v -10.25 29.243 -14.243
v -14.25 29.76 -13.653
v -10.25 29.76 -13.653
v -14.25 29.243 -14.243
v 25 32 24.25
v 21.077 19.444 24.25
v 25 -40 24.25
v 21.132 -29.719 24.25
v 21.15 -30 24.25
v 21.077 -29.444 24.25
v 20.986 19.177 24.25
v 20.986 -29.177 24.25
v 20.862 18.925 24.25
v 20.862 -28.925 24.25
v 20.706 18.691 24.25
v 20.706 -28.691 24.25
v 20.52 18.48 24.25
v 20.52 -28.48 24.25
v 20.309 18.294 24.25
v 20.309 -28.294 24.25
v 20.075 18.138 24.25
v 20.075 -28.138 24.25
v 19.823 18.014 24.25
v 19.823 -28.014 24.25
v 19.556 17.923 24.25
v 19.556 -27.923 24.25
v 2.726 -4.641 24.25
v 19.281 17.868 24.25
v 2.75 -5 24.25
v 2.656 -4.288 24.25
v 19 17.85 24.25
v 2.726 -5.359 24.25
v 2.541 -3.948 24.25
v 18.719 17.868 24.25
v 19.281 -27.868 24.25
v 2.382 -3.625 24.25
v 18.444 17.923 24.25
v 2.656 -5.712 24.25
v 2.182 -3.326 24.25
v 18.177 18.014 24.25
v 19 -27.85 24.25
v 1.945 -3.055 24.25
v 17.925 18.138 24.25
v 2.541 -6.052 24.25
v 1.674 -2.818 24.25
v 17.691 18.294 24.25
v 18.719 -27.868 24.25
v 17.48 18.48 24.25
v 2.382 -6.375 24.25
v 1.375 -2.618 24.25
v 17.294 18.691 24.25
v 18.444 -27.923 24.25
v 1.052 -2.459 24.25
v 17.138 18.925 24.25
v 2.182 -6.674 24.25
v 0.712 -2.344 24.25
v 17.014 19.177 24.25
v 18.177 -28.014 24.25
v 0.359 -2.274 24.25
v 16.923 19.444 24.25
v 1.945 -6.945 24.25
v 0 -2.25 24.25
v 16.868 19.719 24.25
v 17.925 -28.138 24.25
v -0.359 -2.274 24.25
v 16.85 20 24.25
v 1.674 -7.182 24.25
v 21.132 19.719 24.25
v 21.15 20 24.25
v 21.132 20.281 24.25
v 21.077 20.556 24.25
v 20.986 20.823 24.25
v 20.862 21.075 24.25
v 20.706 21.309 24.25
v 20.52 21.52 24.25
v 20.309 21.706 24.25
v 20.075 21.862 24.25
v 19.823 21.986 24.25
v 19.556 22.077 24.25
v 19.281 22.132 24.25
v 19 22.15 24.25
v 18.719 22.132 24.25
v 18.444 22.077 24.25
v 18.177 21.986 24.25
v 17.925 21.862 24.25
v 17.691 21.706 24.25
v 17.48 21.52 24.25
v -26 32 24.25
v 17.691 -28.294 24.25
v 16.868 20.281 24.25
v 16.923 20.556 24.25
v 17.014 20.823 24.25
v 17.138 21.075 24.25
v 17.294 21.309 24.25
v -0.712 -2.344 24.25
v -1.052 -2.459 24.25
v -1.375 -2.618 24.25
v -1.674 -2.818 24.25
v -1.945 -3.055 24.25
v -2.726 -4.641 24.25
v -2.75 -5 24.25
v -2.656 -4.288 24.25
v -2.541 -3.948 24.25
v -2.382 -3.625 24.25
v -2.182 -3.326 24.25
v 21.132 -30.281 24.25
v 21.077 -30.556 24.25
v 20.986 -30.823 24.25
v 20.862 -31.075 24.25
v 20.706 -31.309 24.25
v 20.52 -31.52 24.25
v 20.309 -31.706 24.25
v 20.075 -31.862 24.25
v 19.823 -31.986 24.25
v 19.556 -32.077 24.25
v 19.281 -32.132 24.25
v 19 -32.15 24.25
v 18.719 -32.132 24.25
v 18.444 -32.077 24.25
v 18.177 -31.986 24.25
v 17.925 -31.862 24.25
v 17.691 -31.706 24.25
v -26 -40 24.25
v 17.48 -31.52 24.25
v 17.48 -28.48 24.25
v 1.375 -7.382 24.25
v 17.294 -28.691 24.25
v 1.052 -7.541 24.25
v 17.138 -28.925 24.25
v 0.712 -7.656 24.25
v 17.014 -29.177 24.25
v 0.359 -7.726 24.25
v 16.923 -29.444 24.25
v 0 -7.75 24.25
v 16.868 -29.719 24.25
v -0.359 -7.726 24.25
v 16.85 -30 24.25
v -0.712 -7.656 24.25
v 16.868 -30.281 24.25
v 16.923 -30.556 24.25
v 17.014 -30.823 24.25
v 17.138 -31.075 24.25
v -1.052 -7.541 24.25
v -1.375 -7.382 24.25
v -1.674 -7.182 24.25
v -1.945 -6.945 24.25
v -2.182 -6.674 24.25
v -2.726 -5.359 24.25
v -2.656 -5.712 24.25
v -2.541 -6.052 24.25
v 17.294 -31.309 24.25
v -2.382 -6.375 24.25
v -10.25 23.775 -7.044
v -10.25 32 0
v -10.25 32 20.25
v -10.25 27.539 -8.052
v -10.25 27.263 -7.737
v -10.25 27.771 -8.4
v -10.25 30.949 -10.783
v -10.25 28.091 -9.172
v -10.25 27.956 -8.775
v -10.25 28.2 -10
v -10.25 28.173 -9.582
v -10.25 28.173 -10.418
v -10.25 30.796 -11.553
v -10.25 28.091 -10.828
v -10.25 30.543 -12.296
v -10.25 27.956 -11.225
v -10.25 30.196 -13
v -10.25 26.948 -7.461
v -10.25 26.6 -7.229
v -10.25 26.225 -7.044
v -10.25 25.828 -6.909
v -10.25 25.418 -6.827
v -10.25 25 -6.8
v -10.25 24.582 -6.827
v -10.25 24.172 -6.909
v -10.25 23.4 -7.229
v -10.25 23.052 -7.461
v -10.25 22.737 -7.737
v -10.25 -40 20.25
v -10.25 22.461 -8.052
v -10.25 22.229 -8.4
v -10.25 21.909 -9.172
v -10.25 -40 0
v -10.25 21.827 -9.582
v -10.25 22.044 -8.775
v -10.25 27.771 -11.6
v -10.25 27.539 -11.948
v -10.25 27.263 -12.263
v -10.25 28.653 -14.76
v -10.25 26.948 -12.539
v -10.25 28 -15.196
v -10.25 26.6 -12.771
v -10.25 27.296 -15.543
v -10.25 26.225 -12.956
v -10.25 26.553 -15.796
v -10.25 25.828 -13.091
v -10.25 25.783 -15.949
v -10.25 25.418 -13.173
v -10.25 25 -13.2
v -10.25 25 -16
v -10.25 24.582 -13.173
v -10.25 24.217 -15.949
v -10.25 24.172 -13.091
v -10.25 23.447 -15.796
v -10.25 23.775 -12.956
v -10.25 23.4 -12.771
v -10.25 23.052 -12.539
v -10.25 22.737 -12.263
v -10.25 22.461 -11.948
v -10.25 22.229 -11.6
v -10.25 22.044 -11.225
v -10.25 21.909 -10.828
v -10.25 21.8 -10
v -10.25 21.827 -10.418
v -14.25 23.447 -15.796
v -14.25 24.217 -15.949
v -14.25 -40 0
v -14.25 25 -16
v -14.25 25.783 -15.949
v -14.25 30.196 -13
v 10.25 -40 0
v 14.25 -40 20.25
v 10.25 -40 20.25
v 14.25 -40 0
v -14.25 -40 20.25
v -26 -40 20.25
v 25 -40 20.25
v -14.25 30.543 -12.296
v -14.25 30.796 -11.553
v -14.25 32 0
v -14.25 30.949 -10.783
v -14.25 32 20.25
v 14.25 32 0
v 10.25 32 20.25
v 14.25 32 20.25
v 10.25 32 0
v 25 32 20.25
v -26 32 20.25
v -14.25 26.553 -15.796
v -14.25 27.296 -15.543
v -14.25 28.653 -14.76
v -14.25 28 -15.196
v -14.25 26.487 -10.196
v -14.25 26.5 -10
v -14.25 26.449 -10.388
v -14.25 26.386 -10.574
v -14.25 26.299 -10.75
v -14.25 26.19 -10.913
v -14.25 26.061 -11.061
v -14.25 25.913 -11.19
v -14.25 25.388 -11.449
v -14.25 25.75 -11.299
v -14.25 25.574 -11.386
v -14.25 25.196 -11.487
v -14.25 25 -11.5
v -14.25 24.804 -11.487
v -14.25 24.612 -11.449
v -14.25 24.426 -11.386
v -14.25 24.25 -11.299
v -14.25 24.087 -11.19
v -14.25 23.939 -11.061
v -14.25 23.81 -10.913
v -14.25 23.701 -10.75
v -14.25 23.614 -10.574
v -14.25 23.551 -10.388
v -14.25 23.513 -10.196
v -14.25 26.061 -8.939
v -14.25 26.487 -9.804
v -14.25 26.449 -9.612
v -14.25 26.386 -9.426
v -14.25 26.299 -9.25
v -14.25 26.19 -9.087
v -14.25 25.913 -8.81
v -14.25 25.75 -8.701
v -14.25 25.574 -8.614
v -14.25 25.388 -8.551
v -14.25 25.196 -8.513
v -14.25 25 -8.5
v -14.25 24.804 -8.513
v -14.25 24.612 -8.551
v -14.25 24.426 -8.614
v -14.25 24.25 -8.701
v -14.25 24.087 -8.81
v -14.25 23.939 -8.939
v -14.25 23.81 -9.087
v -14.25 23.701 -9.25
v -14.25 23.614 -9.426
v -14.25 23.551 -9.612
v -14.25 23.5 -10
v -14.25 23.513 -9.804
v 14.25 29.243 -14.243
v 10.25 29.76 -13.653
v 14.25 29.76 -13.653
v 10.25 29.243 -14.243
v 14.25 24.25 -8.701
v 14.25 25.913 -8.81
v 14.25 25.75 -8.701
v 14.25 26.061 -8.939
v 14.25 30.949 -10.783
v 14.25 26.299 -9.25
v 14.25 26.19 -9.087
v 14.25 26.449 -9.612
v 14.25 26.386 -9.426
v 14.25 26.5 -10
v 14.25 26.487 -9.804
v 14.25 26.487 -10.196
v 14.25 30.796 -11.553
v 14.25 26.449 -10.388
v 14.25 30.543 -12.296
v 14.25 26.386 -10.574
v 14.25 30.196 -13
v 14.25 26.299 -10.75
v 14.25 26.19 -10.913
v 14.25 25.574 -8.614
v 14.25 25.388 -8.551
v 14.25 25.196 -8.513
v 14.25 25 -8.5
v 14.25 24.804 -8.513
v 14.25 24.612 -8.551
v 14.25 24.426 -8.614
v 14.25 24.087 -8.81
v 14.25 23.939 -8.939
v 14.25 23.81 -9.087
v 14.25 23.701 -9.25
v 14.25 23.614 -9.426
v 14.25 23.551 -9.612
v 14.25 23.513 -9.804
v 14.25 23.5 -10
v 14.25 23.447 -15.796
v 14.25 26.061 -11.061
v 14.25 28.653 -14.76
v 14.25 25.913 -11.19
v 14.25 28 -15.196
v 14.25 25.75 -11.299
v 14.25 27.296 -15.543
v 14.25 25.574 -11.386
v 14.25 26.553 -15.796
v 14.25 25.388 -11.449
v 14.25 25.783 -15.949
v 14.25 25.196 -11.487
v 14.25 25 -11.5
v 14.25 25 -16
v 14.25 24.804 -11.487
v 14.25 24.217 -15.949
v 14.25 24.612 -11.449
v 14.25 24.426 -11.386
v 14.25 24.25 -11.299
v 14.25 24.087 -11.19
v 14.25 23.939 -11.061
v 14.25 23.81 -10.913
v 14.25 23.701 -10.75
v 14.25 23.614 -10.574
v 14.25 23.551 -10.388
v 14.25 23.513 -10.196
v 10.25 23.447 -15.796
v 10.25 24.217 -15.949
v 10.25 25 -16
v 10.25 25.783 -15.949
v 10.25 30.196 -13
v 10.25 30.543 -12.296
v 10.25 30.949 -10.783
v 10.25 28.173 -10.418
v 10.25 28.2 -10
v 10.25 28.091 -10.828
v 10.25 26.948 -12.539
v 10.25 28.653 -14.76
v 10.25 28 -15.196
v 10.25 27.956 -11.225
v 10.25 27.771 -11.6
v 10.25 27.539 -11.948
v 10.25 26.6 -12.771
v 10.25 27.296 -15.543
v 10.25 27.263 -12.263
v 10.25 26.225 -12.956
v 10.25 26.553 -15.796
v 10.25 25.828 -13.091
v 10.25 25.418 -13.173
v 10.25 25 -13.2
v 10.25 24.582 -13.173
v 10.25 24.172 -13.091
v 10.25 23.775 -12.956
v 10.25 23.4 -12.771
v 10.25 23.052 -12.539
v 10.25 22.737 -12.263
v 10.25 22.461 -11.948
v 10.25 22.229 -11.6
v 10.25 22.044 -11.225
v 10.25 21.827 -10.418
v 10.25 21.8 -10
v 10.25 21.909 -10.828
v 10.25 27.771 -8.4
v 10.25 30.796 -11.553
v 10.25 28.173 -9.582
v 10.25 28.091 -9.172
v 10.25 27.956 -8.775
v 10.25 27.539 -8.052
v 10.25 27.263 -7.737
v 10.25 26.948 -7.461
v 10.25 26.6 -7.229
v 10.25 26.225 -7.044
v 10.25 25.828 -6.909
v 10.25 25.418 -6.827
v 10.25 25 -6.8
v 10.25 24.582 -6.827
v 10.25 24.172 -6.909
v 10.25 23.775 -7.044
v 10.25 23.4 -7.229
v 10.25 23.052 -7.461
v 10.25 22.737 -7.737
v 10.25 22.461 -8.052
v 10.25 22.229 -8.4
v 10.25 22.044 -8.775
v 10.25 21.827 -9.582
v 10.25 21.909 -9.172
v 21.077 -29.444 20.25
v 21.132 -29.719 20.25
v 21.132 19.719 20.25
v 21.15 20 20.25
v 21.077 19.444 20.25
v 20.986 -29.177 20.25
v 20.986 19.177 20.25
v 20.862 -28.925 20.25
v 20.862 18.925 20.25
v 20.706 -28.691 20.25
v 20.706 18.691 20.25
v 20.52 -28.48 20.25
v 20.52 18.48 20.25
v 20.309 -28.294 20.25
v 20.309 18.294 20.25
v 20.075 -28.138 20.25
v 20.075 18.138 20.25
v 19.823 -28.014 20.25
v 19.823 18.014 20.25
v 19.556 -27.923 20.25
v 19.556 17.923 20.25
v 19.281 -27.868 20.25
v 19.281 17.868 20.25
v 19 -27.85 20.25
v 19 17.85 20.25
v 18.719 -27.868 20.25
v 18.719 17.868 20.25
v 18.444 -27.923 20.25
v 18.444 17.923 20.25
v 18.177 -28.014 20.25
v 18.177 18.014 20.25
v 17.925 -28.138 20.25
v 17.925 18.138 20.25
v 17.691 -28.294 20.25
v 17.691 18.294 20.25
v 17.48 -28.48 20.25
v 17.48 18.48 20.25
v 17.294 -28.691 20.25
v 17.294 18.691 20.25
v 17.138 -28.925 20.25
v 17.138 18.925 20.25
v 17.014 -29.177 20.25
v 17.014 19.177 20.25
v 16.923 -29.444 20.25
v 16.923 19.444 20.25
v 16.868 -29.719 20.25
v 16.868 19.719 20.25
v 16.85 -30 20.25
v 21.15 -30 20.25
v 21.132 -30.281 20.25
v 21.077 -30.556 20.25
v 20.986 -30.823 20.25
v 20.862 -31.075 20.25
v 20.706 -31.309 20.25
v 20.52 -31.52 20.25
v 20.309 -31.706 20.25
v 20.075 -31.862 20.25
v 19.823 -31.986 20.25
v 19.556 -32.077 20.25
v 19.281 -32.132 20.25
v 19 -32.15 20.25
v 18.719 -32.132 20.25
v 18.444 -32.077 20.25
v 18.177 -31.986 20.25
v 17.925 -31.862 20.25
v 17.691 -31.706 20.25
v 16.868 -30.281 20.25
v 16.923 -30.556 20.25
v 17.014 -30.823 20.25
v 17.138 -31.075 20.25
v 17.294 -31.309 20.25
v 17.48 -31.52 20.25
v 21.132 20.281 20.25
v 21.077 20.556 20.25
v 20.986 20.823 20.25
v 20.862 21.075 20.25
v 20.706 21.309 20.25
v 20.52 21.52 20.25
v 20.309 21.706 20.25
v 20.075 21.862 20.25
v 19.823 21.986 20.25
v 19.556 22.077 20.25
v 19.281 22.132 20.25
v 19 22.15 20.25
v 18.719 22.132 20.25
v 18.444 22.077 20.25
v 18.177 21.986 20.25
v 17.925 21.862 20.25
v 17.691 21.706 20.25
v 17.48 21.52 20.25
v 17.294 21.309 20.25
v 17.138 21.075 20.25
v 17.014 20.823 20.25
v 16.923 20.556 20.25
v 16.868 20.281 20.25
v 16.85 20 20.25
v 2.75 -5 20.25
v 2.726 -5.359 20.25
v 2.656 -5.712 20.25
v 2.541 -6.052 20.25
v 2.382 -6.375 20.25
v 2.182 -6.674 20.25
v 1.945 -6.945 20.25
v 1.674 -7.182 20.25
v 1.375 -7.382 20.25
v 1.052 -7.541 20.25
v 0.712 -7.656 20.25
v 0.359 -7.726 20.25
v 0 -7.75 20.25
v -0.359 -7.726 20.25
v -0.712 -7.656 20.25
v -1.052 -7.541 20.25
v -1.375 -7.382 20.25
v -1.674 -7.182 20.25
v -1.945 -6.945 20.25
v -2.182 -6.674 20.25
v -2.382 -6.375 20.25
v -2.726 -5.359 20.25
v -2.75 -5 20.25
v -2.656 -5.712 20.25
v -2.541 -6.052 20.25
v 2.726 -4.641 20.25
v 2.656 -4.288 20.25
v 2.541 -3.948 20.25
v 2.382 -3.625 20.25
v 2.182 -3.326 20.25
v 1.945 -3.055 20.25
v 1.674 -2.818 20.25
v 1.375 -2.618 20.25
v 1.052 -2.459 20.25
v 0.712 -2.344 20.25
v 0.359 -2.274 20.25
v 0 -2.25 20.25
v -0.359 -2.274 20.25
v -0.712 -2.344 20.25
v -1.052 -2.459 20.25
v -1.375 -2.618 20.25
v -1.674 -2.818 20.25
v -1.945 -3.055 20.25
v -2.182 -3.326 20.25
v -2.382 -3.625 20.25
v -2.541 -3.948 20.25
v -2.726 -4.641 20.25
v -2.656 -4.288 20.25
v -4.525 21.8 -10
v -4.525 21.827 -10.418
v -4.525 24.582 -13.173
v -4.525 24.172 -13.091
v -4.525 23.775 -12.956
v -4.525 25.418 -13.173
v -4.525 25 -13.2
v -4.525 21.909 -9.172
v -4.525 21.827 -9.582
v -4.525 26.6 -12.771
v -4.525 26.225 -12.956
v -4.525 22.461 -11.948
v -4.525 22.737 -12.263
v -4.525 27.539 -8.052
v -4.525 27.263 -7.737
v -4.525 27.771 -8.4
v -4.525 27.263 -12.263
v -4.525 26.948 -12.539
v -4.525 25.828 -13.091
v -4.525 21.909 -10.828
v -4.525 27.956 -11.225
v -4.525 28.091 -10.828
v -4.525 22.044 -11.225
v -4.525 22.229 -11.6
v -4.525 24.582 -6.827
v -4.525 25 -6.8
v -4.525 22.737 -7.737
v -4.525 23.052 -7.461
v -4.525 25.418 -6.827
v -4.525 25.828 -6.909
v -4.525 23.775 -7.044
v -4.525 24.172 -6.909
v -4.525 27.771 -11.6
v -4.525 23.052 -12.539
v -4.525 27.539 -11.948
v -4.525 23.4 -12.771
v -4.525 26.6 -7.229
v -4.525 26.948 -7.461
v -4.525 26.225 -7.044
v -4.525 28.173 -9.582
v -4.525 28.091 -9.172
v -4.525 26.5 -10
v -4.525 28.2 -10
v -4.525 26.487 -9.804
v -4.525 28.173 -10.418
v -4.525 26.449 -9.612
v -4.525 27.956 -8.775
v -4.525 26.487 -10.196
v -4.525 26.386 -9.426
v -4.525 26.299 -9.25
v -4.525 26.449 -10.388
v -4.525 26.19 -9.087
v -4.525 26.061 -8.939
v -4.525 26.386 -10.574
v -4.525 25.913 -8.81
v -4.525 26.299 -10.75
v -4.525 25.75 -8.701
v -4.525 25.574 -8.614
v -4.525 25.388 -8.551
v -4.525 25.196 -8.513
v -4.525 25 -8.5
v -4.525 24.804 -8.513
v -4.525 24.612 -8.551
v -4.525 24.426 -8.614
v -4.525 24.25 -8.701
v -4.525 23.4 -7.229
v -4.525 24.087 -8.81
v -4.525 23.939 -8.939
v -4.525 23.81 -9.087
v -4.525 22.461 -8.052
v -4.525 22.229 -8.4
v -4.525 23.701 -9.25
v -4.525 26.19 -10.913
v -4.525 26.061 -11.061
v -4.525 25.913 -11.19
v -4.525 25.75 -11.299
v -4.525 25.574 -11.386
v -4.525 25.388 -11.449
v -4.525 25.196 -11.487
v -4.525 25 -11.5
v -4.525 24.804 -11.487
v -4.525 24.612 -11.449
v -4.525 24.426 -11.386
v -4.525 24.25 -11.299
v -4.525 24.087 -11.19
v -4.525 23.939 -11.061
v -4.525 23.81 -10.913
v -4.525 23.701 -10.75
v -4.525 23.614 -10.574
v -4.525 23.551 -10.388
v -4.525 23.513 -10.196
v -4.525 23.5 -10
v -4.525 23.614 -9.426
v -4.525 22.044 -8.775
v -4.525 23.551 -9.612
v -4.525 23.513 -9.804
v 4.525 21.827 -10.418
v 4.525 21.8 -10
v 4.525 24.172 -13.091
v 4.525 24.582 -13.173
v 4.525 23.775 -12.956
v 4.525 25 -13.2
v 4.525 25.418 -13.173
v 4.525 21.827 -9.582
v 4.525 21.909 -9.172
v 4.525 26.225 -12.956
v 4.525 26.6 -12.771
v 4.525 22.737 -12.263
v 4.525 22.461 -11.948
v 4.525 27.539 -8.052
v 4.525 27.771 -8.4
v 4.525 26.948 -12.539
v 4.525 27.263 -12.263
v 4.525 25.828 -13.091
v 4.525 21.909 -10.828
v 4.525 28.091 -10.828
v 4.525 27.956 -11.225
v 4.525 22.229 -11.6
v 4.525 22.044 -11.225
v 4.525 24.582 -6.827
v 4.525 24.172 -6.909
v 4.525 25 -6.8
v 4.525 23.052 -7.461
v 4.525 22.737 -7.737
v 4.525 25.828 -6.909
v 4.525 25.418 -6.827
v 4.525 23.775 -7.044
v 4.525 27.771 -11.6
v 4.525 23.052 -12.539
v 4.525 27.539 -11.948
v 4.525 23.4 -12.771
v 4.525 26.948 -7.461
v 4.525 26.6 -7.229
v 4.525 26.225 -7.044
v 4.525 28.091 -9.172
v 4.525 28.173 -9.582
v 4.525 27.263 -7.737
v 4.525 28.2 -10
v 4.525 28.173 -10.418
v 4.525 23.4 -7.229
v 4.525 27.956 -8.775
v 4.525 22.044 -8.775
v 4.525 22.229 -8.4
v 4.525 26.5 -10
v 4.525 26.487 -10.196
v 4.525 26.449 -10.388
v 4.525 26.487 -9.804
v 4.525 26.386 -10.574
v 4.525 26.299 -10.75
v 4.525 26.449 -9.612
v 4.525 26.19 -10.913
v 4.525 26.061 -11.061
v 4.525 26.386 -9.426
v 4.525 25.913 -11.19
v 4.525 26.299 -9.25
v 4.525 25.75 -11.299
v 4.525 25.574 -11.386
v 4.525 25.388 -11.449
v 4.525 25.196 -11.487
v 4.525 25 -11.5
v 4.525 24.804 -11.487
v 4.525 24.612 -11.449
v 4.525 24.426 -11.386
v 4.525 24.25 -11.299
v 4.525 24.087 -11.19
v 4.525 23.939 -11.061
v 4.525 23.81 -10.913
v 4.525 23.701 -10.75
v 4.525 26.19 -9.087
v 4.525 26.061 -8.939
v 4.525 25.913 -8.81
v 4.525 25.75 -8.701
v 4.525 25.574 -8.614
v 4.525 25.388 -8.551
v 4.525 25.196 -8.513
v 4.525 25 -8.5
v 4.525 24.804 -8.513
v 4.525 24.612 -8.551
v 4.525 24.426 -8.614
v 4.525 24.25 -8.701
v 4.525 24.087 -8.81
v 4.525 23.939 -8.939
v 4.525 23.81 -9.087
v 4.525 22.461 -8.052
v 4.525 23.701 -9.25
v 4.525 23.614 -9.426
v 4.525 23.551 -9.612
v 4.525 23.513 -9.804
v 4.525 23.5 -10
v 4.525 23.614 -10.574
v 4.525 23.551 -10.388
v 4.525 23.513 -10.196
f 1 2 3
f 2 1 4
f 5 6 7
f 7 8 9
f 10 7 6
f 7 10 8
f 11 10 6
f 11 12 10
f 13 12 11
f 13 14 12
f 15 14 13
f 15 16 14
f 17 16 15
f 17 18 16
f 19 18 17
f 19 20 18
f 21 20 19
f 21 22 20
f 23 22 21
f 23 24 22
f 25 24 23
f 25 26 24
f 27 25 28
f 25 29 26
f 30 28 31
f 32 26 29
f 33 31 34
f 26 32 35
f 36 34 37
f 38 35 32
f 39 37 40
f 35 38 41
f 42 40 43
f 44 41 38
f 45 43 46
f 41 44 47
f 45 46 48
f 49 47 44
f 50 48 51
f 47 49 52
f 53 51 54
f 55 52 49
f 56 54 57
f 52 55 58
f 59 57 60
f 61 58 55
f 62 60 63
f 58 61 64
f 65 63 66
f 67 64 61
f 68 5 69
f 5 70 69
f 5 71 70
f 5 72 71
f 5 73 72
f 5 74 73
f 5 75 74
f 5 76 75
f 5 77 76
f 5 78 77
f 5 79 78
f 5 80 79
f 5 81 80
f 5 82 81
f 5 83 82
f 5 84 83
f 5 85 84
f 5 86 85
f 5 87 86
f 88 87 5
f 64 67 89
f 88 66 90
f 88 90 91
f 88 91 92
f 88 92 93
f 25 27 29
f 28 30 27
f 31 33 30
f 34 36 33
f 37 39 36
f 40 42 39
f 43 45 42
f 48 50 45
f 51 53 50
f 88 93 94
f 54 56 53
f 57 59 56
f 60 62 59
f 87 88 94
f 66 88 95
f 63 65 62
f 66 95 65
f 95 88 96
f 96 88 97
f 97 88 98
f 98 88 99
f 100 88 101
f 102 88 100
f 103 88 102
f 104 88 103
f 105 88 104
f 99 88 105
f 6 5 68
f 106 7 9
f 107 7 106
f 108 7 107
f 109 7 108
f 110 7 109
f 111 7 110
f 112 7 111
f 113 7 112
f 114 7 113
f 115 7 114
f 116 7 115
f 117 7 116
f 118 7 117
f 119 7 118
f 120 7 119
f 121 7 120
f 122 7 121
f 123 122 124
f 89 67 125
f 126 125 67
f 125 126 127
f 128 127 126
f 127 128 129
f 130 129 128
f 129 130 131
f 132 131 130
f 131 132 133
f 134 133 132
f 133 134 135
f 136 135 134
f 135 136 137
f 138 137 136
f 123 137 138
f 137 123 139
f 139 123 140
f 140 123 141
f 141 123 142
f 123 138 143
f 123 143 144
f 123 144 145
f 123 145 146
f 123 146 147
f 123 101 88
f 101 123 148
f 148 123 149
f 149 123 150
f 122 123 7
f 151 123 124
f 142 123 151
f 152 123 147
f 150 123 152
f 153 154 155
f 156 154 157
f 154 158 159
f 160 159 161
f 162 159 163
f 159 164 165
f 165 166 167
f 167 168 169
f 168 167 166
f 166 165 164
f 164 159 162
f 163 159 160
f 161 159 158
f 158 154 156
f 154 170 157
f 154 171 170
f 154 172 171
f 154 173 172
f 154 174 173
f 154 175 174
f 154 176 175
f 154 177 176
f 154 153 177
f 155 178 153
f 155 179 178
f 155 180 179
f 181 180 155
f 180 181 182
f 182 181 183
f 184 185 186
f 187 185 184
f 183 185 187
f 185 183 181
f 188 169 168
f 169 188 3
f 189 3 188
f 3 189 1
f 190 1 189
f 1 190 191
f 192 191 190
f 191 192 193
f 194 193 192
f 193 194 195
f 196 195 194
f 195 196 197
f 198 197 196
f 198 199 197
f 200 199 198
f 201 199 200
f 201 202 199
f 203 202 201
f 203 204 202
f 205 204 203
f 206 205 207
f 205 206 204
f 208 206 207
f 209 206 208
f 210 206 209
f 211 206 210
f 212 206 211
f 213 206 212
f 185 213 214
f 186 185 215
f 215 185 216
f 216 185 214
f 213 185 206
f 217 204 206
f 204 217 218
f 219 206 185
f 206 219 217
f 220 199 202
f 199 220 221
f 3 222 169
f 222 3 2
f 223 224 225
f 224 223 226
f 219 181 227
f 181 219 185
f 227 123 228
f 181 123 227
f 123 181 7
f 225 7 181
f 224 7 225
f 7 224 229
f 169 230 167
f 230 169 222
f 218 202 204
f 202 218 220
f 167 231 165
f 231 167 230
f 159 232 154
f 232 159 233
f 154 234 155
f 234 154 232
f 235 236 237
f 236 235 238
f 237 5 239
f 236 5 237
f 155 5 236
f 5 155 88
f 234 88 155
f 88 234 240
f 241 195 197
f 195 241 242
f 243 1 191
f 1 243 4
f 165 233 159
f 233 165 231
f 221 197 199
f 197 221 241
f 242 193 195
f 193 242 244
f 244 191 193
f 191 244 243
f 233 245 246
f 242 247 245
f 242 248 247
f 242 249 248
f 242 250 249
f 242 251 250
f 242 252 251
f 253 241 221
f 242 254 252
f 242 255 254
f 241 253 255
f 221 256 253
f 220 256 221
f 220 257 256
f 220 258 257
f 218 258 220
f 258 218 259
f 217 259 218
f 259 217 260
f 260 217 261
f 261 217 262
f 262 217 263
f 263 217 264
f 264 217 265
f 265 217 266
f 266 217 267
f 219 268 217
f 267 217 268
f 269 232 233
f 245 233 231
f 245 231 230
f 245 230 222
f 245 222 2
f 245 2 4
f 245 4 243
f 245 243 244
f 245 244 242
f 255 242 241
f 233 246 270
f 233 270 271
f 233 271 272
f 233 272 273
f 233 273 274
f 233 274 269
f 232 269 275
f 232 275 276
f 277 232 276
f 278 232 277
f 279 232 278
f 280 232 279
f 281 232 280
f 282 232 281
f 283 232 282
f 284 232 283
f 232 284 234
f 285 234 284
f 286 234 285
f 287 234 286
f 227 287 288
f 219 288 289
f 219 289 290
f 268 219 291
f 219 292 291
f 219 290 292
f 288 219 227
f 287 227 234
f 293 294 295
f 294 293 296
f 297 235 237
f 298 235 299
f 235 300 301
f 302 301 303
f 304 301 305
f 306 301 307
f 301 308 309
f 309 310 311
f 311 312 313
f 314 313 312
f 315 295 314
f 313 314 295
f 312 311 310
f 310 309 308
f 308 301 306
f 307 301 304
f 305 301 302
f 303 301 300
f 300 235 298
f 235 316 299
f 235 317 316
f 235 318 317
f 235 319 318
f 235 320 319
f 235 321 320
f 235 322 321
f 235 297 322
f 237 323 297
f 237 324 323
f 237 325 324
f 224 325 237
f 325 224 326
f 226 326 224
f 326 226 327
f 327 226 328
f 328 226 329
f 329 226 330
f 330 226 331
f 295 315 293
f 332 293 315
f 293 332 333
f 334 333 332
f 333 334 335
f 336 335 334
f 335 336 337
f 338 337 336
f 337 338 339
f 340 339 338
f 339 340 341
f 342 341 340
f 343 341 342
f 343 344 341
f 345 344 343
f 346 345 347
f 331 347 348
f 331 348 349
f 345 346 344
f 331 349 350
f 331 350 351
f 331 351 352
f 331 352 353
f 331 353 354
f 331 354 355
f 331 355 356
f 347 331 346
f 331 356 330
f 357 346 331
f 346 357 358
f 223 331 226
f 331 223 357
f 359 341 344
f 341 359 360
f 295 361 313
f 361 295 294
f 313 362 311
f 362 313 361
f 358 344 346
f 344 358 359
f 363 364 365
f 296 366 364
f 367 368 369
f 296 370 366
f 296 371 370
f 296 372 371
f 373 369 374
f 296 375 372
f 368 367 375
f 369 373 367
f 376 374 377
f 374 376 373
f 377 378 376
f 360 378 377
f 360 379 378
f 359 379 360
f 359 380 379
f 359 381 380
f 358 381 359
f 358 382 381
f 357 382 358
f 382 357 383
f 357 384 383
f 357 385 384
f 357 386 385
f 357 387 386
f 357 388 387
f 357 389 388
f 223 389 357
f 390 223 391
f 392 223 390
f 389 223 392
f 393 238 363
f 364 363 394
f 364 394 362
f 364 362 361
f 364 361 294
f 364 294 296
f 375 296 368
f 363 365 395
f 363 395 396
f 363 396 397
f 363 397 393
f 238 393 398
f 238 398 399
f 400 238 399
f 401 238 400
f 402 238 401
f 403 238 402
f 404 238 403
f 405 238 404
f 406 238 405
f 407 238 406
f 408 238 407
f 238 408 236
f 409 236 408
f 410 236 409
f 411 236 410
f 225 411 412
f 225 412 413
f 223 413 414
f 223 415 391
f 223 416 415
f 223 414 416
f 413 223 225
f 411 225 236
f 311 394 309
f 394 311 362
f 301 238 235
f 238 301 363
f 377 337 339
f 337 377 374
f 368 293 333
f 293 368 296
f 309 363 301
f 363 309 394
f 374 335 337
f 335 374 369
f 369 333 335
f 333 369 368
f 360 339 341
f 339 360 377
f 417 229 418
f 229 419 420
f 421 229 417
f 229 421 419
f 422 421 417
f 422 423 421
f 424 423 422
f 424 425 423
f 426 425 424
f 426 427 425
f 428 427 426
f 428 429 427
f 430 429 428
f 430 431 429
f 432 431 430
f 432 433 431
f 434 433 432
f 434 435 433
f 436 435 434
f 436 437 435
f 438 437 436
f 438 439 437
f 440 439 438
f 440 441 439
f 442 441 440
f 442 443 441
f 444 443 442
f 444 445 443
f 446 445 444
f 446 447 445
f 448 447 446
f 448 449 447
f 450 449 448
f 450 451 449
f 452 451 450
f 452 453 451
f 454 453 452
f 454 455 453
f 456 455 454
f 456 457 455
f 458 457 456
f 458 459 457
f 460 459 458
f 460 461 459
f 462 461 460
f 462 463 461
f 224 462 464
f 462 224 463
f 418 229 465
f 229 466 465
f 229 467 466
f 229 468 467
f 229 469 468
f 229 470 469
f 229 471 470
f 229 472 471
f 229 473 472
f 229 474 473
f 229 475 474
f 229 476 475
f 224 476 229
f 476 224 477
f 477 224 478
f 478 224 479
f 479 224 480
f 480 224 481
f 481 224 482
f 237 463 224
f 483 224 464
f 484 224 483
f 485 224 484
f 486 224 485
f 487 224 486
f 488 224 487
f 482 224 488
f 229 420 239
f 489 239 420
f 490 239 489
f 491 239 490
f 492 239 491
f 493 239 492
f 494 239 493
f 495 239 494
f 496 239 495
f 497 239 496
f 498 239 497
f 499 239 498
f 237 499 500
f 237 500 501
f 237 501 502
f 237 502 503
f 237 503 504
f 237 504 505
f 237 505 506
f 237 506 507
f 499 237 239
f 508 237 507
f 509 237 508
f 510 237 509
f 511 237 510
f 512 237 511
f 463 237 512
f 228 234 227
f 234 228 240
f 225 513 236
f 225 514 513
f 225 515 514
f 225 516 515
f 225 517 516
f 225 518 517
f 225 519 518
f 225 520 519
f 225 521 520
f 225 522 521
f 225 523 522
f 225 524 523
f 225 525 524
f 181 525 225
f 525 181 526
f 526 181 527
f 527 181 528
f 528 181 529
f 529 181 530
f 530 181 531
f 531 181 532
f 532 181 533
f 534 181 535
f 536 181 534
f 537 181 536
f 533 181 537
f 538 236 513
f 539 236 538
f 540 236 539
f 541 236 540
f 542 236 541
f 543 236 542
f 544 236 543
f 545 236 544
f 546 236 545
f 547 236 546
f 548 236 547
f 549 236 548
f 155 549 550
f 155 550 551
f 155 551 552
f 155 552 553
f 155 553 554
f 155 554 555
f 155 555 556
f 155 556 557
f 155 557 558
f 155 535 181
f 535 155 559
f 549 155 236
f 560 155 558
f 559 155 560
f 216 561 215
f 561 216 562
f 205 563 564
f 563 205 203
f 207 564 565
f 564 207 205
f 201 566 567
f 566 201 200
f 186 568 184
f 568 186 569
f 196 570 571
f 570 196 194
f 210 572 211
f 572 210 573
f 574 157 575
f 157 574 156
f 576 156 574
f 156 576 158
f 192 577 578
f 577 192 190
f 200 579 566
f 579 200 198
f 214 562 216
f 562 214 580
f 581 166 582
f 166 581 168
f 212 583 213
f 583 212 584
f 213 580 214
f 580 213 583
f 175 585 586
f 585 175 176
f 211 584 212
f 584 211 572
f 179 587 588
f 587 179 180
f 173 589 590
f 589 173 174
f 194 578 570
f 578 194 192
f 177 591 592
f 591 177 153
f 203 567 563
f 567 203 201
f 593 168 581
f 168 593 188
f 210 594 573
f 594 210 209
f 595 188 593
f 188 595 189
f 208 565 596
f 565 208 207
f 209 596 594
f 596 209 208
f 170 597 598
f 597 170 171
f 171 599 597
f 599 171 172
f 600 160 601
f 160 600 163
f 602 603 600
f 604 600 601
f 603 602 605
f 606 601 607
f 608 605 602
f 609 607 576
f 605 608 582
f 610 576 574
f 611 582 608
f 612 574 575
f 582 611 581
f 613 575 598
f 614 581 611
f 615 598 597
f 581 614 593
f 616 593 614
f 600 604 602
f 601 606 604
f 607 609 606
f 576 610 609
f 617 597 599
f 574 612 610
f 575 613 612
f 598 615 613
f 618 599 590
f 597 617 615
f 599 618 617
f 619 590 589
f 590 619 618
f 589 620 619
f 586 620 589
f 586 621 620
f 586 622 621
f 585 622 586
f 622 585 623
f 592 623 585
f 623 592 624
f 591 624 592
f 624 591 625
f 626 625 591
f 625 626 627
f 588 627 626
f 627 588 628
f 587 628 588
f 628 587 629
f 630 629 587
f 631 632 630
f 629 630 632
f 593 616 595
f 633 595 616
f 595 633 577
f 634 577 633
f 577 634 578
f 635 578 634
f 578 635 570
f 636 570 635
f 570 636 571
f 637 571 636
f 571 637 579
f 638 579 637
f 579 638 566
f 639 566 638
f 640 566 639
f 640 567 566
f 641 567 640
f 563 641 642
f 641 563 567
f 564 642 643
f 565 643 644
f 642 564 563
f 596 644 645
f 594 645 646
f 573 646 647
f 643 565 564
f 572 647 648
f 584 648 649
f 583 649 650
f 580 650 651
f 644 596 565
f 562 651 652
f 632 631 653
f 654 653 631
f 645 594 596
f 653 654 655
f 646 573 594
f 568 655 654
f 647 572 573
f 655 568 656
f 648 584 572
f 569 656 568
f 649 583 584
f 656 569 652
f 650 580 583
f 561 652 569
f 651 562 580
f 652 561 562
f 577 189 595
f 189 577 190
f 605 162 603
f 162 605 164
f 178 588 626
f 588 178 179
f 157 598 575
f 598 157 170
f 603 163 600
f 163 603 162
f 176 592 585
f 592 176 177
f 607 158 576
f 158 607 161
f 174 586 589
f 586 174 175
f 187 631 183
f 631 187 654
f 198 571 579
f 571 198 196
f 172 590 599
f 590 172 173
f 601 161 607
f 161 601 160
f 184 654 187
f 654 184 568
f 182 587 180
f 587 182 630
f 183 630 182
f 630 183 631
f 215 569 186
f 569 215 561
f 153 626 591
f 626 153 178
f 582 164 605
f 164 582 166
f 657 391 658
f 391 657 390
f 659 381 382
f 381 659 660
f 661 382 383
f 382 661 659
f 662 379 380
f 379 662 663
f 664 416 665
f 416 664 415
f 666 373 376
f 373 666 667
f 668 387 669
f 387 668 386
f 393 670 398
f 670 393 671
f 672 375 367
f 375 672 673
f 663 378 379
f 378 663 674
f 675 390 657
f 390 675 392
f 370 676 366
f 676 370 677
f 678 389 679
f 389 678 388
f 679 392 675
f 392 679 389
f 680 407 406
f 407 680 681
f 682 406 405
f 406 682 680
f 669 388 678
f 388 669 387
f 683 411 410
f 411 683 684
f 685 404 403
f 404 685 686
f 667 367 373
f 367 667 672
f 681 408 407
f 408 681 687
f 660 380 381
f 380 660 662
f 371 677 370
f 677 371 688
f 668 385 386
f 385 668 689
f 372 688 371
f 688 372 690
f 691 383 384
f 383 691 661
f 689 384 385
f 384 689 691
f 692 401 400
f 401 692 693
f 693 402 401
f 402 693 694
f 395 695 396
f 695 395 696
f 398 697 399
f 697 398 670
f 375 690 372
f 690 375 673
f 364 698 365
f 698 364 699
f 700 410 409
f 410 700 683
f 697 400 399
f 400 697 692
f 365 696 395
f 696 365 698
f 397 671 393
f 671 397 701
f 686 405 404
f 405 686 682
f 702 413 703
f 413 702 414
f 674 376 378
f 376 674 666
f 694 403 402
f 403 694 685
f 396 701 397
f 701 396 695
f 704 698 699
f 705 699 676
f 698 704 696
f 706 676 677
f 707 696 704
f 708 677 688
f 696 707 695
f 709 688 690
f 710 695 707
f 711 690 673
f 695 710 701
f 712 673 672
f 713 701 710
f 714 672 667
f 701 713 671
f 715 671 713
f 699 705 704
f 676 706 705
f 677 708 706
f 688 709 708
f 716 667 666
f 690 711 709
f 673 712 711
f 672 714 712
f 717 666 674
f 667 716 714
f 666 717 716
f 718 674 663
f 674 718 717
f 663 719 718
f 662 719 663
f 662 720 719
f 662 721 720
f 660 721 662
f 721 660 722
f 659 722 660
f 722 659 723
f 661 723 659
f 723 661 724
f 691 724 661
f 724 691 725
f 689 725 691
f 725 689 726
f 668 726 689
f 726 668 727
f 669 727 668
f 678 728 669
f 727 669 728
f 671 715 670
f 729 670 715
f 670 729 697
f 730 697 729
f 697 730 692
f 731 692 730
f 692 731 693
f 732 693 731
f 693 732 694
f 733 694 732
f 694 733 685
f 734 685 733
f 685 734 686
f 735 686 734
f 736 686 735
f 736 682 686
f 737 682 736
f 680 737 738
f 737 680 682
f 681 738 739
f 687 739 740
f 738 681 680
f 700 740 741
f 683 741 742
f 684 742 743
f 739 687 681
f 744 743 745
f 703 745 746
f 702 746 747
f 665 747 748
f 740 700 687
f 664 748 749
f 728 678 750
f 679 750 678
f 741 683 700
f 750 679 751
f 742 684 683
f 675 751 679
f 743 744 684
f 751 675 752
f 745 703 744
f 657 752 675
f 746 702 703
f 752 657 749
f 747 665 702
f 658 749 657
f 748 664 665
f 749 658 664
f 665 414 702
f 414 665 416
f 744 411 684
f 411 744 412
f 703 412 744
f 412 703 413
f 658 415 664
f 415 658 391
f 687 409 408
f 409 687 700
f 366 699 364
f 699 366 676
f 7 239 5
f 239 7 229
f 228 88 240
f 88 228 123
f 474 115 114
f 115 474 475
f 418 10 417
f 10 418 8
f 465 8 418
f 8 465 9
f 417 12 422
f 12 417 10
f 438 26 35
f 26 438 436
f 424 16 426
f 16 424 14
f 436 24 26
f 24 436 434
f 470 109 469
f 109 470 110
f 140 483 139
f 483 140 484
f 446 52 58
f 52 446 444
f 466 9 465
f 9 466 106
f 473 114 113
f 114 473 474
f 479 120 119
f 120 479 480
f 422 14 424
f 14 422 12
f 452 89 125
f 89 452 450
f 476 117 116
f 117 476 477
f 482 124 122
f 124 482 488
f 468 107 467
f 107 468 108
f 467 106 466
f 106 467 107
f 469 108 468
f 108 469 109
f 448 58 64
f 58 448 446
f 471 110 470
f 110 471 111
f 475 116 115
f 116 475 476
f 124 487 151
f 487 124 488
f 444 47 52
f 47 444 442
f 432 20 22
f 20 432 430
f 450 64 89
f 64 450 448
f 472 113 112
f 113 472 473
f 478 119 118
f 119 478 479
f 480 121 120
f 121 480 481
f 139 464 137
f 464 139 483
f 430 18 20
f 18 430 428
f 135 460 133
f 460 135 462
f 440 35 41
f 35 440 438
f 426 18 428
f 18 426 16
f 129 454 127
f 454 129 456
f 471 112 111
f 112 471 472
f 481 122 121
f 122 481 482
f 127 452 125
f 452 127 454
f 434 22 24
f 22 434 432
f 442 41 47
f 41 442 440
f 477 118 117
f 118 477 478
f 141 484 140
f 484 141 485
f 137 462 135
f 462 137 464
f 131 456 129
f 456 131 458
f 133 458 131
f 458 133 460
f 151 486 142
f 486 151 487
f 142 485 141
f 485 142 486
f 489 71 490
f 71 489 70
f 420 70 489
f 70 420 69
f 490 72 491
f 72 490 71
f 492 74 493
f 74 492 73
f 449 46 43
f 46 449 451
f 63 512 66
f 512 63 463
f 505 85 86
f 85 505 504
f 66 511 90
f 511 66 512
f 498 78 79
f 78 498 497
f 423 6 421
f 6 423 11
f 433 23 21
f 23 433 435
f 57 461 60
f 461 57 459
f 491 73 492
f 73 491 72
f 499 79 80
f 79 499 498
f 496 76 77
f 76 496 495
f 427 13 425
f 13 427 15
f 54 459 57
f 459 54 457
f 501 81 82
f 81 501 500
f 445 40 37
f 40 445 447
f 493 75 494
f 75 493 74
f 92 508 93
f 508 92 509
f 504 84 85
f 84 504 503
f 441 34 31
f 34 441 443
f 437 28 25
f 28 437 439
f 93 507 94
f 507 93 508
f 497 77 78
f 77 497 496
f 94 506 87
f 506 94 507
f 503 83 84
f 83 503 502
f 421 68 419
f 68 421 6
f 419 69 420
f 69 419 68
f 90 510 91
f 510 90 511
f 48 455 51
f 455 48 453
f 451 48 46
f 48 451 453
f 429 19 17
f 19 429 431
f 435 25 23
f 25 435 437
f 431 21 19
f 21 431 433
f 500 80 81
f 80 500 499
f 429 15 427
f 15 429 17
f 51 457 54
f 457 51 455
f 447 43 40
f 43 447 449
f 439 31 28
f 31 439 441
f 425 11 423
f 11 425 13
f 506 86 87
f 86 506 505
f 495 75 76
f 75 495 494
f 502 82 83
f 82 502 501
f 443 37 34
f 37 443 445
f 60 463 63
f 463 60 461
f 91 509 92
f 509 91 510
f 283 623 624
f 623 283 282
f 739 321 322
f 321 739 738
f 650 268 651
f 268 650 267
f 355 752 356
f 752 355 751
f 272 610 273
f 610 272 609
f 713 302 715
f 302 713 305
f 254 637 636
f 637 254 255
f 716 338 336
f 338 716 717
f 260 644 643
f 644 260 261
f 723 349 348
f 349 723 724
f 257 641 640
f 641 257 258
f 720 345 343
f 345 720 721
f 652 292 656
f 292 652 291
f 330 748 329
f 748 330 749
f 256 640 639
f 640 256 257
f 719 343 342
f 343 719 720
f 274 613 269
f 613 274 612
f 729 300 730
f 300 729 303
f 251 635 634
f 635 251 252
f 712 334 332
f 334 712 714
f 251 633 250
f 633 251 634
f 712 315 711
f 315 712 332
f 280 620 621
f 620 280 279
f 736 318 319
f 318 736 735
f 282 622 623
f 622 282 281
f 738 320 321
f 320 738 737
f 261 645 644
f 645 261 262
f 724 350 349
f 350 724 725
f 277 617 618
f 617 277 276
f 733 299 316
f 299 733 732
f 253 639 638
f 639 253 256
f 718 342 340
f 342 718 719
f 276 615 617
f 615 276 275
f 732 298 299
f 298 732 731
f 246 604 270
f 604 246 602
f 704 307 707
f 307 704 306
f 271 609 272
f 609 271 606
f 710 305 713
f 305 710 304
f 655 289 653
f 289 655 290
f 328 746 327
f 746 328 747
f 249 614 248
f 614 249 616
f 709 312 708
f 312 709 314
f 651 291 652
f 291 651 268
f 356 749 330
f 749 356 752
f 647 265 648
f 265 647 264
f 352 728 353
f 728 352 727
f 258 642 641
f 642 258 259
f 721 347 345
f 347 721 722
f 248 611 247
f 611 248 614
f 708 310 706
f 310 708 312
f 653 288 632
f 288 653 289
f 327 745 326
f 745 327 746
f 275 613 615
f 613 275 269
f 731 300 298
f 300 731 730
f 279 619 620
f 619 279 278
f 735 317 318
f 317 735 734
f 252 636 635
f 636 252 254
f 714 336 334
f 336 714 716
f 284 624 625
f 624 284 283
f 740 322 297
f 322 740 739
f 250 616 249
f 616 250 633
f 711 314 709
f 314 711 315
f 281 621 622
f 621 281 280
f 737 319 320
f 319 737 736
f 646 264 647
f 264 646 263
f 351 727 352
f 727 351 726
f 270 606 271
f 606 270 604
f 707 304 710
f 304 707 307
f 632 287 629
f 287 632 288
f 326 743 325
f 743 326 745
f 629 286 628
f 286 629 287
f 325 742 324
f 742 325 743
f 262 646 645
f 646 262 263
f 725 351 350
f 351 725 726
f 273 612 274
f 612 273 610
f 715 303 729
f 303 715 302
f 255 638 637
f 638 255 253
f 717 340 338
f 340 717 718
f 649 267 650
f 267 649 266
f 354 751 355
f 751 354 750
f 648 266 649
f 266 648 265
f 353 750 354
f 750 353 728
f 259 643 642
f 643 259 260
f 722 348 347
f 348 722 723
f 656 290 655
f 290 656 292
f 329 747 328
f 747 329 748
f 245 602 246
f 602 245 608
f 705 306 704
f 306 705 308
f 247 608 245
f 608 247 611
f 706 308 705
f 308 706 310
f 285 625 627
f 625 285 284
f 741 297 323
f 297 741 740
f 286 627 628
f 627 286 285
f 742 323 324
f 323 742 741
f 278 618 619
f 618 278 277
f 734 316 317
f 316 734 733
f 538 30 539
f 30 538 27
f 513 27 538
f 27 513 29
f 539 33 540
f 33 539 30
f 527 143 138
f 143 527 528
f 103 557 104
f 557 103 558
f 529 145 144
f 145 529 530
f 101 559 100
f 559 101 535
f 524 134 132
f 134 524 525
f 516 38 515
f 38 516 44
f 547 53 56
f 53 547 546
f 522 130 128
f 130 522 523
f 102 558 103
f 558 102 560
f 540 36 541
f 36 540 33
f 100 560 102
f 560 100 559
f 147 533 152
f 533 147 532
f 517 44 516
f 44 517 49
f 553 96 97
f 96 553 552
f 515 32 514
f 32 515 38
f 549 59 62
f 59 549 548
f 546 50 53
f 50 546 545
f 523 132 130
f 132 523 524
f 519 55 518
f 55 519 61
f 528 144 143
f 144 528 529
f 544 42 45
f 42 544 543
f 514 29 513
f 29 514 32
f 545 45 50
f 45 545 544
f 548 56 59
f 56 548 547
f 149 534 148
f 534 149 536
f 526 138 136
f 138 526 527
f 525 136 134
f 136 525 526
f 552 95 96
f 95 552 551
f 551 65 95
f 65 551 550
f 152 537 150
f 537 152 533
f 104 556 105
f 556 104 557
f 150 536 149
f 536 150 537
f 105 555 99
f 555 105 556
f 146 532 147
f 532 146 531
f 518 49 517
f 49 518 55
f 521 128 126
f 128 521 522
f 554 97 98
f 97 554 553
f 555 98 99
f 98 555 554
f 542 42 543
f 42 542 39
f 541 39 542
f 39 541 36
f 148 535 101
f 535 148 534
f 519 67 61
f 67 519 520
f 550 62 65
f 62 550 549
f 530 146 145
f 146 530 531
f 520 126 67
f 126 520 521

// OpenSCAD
// file: common-2020.scad
// Shared socket geometry for the scanner stand brackets.
// A socket holds the end of a 2020 profile running down -Z from its closed end at z=0.

$fn = 48;

profile     = 20;
clearance   = 0.25;   // per side; raise if the profile will not slide in
wall        = 4;
depth       = 30;     // how far a profile slides into a socket
screw_d     = 5.5;
screw_depth = [9, 22];

inner = profile + 2 * clearance;
outer = inner + 2 * wall;
far   = 400;          // long enough to clear anything a hull adds in a profile's path

module socket_body() translate([-outer / 2, -outer / 2, -depth]) cube([outer, outer, depth + wall]);

module socket_void() translate([-inner / 2, -inner / 2, -far]) cube([inner, inner, far]);

// M5 holes through the front and back walls, into T-nuts in the profile's slots.
module socket_screws(depths = screw_depth)
    for (d = depths)
        translate([0, 0, -d]) rotate([90, 0, 0]) cylinder(d = screw_d, h = outer + 2, center = true);
// file: saddle-2020.scad
// Shared geometry for the mounts that hang on the cross bar.
// A saddle is an upside-down U that drops onto the bar from above, with arms reaching
// below it. A pin through the arms carries the camera case from thingiverse:2615180
// (pi_camera_case_bottom.stl) on its own hinge, so the camera looks down.
// The bar runs along Y with its bottom face at z=0; the camera hangs toward +Y.

include <common-2020.scad>

// The case's hinge: two knuckles 2 mm wide, 4.66 mm apart, 6.4 mm across.
knuckle_d   = 6.4;
knuckle_gap = 0.2;    // play beside each of the case's knuckles; the cap takes it up
case_outer  = 4.33;   // the case's knuckles end this far either side of centre
pin_d       = 3;      // snug on the printed pin; printed holes come out a little small

drop        = 10;     // pin below the bar; the case's back then clears the bar by 3 mm
arm_end     = 6;      // radius of the arms' rounded ends around the pin

saddle_top  = profile + clearance + wall;

module pin_axis(y) translate([0, y, -drop]) rotate([0, 90, 0]) children();

// The U itself, from `from` to `to` along the bar, with its arms drawn out to the pin.
module saddle(from, to, pin_y) {
    for (s = [-1, 1]) hull() {
        translate([s > 0 ? inner / 2 : -outer / 2, from, 0]) cube([wall, to - from, saddle_top]);
        translate([s * (inner + wall) / 2, 0, 0]) pin_axis(pin_y) cylinder(r = arm_end, h = wall, center = true);
    }
    translate([-outer / 2, from, saddle_top - wall]) cube([outer, to - from, wall]);
}

// Bosses from each arm in to the case's knuckles, so the case hangs centred.
module bosses(pin_y)
    for (s = [-1, 1]) {
        from = case_outer + knuckle_gap;
        translate([s * (from + inner / 2) / 2, 0, 0])
            pin_axis(pin_y) cylinder(d = knuckle_d, h = inner / 2 - from + 0.01, center = true);
    }

module pin_hole(pin_y) pin_axis(pin_y) cylinder(d = pin_d, h = outer + 2, center = true);

// M5 into a T-nut in the bar's top slot, so the saddle cannot slide along the bar.
module lock_screw(y) translate([0, y, profile]) cylinder(d = screw_d, h = wall + clearance + 2);
// main file
// Mount for the Pi and the camera together, on the cross bar of the triangle stand.
// The saddle drops onto the bar from above. Its top is a shelf that the Pi case from
// thingiverse:2615180 (pi_bottom_cover.stl) bolts onto through the two M4 holes it
// already has for 2020 profile, 50 mm apart. The camera case hangs from the pin below
// the bar, at the +Y end, so the lens looks down about 39 mm further along the bar.
//
// Hardware: 2x M4x12 + M4 nuts for the Pi case (the nuts go under the shelf, beside
// the bar), hinge-pin.scad for the camera, with the case's knuckles drilled out to
// 3 mm. Optional: 1x M5x10 + M5 T-nut in the bar's top slot to stop it sliding; fit
// that one before the Pi case, which covers it.
// Print lying on the shelf, arms up; PETG, 4+ walls, 40% infill, no supports.

include <saddle-2020.scad>

from     = -40;
to       = 32;
pin_y    = 25;          // camera hinge, at the far end from the Pi
lock_y   = -5;

pi_screw = 4.3;         // M4 clearance
pi_holes = [-30, 20];   // 50 mm apart, as on the case's plate
pi_x     = 19;          // clear of the arms, so an M4 nut fits under the shelf
shelf    = [-26, 25];   // across the bar; holds up the Pi case, which overhangs a little

module shelf() translate([shelf[0], from, saddle_top - wall])
    cube([shelf[1] - shelf[0], to - from, wall]);

difference() {
    union() { saddle(from, to, pin_y); shelf(); bosses(pin_y); }
    pin_hole(pin_y);
    lock_screw(lock_y);
    for (y = pi_holes) translate([pi_x, y, saddle_top - wall - 1]) cylinder(d = pi_screw, h = wall + 2);
}
